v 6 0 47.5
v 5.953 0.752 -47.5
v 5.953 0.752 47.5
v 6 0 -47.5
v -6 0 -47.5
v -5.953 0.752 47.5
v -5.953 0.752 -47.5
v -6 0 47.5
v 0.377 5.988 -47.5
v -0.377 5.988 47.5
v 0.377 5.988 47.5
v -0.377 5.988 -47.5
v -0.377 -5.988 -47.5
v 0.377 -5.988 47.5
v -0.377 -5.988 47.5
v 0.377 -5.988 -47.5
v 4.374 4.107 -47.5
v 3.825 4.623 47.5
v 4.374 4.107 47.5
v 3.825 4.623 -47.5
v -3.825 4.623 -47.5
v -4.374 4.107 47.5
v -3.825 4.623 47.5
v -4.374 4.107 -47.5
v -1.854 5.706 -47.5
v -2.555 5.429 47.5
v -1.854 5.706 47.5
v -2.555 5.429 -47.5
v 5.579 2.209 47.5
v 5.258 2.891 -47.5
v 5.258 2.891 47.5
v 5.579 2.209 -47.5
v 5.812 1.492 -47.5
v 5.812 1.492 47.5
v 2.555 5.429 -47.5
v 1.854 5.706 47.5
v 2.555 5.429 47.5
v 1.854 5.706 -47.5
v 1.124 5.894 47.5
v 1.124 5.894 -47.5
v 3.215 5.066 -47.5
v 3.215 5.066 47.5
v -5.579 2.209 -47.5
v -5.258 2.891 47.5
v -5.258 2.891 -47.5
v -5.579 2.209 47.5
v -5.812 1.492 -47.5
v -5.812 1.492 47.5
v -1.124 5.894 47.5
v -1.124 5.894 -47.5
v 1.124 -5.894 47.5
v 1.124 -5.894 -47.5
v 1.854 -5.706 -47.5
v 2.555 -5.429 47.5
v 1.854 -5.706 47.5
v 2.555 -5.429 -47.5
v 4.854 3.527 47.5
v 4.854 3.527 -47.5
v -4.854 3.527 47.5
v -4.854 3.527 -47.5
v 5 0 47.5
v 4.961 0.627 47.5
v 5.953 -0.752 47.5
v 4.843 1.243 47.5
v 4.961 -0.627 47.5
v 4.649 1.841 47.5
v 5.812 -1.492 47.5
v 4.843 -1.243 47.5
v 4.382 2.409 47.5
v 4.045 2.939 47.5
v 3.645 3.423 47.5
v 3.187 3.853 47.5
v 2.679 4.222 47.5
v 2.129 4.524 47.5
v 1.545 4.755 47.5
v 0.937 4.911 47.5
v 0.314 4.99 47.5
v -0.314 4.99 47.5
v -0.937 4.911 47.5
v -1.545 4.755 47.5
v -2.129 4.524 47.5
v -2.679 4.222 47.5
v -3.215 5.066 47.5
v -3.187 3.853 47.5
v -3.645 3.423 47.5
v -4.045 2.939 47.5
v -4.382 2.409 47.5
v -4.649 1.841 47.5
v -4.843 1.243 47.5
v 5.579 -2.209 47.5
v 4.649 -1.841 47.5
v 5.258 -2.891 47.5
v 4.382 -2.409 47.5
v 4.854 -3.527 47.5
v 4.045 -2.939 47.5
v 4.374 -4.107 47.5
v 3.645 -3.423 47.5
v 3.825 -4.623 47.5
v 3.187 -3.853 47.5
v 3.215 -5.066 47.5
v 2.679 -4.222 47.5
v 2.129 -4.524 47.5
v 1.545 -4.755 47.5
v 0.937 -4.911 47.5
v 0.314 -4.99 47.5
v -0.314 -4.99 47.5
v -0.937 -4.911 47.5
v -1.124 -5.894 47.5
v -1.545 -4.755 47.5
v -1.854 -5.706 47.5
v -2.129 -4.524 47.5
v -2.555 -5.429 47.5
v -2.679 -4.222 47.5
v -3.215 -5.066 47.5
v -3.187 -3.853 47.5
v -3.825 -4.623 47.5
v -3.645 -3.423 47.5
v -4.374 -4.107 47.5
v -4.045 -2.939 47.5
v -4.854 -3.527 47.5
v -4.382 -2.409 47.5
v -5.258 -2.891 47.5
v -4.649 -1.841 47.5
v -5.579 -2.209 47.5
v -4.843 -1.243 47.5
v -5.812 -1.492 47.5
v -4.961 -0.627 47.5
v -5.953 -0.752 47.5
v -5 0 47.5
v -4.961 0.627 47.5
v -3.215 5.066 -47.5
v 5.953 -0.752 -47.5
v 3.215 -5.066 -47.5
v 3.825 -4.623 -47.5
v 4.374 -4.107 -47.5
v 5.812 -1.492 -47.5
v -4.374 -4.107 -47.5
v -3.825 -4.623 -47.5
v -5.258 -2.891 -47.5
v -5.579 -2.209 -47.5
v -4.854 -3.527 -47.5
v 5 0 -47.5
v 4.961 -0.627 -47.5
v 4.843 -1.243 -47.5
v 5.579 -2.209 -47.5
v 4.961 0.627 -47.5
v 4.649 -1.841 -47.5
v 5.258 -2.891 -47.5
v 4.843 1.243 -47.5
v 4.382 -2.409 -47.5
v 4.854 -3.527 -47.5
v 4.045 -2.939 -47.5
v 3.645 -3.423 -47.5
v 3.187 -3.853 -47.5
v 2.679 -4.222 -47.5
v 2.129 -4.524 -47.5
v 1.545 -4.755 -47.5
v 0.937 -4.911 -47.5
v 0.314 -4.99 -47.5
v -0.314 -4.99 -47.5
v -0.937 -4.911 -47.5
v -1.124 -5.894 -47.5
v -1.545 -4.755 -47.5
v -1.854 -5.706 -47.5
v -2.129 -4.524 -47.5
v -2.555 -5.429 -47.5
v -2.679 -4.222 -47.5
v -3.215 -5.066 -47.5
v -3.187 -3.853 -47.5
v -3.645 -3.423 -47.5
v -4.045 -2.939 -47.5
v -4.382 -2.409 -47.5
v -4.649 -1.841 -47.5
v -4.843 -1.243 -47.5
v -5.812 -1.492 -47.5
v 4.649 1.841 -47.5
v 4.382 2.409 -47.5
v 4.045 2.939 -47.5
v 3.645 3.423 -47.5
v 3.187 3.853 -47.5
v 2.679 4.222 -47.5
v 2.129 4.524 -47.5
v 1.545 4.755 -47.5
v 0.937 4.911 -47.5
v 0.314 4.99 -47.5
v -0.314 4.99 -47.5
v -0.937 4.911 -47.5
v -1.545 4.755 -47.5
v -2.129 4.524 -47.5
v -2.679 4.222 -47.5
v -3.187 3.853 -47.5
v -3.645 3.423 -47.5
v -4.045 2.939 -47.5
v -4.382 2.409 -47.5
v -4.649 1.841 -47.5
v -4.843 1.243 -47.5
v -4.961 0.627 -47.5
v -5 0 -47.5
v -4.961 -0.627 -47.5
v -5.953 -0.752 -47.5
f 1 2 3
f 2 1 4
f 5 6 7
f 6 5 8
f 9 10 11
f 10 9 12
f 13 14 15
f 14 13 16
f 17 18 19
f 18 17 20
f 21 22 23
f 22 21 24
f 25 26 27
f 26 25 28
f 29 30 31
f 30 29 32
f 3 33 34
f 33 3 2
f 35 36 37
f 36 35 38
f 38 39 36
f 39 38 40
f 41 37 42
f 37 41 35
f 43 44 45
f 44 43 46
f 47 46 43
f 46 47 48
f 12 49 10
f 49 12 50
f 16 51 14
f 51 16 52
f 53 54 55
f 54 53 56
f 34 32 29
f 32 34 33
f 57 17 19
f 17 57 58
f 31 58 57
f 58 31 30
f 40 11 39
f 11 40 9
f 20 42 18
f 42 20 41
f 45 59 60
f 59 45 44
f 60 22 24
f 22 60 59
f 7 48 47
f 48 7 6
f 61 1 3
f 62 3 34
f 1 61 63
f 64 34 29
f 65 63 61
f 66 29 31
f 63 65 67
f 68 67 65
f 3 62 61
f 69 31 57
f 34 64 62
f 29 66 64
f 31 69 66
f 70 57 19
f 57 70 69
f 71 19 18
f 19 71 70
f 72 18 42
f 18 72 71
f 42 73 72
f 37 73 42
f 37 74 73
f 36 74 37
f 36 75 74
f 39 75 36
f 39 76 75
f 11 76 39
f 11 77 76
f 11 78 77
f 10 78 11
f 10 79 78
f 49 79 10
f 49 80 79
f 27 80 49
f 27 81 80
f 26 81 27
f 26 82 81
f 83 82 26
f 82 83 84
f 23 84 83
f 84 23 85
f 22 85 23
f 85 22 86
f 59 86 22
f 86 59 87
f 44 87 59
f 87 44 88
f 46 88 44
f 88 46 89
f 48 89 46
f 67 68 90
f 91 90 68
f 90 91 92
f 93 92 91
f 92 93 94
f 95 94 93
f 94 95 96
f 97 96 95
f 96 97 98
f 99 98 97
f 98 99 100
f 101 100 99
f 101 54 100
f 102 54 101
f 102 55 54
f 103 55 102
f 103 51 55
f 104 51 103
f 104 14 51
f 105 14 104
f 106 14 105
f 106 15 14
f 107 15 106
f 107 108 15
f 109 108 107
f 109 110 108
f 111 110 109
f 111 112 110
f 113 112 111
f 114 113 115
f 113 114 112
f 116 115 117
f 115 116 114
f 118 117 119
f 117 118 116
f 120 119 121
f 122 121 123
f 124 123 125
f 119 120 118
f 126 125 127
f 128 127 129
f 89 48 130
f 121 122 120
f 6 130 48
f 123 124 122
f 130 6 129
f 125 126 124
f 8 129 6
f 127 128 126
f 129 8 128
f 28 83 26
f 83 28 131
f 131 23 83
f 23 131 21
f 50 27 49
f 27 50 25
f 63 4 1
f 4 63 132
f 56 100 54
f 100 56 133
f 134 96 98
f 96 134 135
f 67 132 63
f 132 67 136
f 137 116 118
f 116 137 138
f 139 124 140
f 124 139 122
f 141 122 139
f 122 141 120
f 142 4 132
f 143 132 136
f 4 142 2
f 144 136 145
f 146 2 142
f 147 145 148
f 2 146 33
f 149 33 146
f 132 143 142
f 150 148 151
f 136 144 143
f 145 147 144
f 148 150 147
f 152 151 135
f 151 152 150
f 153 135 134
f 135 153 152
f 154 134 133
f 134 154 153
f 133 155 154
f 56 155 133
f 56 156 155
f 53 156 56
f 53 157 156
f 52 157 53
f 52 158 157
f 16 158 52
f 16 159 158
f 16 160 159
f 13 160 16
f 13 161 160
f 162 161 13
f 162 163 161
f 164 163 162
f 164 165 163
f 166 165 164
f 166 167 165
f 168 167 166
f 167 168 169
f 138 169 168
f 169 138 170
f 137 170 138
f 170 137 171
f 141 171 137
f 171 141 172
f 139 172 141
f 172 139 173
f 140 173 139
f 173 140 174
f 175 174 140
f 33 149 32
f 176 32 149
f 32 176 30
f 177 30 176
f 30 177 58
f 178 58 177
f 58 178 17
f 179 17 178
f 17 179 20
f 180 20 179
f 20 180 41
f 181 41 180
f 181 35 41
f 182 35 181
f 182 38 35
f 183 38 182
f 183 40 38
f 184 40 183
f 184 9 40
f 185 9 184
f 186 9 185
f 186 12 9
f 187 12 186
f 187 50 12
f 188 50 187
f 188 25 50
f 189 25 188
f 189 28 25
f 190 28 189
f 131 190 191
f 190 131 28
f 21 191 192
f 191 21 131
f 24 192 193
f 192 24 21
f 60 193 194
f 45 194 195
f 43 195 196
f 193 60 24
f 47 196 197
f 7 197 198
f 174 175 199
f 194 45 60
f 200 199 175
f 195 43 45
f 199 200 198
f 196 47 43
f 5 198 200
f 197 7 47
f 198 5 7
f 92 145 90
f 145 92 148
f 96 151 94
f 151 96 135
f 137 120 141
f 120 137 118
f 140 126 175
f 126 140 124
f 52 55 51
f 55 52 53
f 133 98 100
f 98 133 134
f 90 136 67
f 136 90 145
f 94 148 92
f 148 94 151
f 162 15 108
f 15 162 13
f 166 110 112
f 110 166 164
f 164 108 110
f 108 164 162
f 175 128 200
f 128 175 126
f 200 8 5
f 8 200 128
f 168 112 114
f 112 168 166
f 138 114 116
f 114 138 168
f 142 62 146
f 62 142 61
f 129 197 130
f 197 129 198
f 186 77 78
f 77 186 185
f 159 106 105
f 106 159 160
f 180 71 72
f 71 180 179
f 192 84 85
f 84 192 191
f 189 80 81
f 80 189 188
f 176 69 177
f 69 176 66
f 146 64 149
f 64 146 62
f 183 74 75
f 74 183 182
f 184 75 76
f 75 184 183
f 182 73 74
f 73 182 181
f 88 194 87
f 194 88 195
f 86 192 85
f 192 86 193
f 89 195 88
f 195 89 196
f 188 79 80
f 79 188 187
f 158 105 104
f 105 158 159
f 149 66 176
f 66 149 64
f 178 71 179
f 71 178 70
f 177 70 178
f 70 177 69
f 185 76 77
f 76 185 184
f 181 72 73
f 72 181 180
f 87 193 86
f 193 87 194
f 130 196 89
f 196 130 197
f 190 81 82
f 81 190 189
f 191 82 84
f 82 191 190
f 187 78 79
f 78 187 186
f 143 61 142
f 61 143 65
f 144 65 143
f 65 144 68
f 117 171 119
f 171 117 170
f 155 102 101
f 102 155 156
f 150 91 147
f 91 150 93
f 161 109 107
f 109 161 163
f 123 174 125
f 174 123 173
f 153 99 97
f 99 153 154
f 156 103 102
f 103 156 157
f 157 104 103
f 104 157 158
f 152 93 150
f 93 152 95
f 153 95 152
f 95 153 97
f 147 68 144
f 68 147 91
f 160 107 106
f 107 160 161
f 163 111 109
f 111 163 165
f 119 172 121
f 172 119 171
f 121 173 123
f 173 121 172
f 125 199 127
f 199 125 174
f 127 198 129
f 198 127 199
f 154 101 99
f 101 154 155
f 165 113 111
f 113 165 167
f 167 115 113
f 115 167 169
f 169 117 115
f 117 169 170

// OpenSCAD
$fn = 50;


difference() {
	union() {
		translate(v = [0, 0, -47.5000000000]) {
			cylinder(h = 95, r = 6.0000000000);
		}
	}
	union() {
		translate(v = [0, 0, -100.0000000000]) {
			cylinder(h = 200, r = 5);
		}
	}
}
